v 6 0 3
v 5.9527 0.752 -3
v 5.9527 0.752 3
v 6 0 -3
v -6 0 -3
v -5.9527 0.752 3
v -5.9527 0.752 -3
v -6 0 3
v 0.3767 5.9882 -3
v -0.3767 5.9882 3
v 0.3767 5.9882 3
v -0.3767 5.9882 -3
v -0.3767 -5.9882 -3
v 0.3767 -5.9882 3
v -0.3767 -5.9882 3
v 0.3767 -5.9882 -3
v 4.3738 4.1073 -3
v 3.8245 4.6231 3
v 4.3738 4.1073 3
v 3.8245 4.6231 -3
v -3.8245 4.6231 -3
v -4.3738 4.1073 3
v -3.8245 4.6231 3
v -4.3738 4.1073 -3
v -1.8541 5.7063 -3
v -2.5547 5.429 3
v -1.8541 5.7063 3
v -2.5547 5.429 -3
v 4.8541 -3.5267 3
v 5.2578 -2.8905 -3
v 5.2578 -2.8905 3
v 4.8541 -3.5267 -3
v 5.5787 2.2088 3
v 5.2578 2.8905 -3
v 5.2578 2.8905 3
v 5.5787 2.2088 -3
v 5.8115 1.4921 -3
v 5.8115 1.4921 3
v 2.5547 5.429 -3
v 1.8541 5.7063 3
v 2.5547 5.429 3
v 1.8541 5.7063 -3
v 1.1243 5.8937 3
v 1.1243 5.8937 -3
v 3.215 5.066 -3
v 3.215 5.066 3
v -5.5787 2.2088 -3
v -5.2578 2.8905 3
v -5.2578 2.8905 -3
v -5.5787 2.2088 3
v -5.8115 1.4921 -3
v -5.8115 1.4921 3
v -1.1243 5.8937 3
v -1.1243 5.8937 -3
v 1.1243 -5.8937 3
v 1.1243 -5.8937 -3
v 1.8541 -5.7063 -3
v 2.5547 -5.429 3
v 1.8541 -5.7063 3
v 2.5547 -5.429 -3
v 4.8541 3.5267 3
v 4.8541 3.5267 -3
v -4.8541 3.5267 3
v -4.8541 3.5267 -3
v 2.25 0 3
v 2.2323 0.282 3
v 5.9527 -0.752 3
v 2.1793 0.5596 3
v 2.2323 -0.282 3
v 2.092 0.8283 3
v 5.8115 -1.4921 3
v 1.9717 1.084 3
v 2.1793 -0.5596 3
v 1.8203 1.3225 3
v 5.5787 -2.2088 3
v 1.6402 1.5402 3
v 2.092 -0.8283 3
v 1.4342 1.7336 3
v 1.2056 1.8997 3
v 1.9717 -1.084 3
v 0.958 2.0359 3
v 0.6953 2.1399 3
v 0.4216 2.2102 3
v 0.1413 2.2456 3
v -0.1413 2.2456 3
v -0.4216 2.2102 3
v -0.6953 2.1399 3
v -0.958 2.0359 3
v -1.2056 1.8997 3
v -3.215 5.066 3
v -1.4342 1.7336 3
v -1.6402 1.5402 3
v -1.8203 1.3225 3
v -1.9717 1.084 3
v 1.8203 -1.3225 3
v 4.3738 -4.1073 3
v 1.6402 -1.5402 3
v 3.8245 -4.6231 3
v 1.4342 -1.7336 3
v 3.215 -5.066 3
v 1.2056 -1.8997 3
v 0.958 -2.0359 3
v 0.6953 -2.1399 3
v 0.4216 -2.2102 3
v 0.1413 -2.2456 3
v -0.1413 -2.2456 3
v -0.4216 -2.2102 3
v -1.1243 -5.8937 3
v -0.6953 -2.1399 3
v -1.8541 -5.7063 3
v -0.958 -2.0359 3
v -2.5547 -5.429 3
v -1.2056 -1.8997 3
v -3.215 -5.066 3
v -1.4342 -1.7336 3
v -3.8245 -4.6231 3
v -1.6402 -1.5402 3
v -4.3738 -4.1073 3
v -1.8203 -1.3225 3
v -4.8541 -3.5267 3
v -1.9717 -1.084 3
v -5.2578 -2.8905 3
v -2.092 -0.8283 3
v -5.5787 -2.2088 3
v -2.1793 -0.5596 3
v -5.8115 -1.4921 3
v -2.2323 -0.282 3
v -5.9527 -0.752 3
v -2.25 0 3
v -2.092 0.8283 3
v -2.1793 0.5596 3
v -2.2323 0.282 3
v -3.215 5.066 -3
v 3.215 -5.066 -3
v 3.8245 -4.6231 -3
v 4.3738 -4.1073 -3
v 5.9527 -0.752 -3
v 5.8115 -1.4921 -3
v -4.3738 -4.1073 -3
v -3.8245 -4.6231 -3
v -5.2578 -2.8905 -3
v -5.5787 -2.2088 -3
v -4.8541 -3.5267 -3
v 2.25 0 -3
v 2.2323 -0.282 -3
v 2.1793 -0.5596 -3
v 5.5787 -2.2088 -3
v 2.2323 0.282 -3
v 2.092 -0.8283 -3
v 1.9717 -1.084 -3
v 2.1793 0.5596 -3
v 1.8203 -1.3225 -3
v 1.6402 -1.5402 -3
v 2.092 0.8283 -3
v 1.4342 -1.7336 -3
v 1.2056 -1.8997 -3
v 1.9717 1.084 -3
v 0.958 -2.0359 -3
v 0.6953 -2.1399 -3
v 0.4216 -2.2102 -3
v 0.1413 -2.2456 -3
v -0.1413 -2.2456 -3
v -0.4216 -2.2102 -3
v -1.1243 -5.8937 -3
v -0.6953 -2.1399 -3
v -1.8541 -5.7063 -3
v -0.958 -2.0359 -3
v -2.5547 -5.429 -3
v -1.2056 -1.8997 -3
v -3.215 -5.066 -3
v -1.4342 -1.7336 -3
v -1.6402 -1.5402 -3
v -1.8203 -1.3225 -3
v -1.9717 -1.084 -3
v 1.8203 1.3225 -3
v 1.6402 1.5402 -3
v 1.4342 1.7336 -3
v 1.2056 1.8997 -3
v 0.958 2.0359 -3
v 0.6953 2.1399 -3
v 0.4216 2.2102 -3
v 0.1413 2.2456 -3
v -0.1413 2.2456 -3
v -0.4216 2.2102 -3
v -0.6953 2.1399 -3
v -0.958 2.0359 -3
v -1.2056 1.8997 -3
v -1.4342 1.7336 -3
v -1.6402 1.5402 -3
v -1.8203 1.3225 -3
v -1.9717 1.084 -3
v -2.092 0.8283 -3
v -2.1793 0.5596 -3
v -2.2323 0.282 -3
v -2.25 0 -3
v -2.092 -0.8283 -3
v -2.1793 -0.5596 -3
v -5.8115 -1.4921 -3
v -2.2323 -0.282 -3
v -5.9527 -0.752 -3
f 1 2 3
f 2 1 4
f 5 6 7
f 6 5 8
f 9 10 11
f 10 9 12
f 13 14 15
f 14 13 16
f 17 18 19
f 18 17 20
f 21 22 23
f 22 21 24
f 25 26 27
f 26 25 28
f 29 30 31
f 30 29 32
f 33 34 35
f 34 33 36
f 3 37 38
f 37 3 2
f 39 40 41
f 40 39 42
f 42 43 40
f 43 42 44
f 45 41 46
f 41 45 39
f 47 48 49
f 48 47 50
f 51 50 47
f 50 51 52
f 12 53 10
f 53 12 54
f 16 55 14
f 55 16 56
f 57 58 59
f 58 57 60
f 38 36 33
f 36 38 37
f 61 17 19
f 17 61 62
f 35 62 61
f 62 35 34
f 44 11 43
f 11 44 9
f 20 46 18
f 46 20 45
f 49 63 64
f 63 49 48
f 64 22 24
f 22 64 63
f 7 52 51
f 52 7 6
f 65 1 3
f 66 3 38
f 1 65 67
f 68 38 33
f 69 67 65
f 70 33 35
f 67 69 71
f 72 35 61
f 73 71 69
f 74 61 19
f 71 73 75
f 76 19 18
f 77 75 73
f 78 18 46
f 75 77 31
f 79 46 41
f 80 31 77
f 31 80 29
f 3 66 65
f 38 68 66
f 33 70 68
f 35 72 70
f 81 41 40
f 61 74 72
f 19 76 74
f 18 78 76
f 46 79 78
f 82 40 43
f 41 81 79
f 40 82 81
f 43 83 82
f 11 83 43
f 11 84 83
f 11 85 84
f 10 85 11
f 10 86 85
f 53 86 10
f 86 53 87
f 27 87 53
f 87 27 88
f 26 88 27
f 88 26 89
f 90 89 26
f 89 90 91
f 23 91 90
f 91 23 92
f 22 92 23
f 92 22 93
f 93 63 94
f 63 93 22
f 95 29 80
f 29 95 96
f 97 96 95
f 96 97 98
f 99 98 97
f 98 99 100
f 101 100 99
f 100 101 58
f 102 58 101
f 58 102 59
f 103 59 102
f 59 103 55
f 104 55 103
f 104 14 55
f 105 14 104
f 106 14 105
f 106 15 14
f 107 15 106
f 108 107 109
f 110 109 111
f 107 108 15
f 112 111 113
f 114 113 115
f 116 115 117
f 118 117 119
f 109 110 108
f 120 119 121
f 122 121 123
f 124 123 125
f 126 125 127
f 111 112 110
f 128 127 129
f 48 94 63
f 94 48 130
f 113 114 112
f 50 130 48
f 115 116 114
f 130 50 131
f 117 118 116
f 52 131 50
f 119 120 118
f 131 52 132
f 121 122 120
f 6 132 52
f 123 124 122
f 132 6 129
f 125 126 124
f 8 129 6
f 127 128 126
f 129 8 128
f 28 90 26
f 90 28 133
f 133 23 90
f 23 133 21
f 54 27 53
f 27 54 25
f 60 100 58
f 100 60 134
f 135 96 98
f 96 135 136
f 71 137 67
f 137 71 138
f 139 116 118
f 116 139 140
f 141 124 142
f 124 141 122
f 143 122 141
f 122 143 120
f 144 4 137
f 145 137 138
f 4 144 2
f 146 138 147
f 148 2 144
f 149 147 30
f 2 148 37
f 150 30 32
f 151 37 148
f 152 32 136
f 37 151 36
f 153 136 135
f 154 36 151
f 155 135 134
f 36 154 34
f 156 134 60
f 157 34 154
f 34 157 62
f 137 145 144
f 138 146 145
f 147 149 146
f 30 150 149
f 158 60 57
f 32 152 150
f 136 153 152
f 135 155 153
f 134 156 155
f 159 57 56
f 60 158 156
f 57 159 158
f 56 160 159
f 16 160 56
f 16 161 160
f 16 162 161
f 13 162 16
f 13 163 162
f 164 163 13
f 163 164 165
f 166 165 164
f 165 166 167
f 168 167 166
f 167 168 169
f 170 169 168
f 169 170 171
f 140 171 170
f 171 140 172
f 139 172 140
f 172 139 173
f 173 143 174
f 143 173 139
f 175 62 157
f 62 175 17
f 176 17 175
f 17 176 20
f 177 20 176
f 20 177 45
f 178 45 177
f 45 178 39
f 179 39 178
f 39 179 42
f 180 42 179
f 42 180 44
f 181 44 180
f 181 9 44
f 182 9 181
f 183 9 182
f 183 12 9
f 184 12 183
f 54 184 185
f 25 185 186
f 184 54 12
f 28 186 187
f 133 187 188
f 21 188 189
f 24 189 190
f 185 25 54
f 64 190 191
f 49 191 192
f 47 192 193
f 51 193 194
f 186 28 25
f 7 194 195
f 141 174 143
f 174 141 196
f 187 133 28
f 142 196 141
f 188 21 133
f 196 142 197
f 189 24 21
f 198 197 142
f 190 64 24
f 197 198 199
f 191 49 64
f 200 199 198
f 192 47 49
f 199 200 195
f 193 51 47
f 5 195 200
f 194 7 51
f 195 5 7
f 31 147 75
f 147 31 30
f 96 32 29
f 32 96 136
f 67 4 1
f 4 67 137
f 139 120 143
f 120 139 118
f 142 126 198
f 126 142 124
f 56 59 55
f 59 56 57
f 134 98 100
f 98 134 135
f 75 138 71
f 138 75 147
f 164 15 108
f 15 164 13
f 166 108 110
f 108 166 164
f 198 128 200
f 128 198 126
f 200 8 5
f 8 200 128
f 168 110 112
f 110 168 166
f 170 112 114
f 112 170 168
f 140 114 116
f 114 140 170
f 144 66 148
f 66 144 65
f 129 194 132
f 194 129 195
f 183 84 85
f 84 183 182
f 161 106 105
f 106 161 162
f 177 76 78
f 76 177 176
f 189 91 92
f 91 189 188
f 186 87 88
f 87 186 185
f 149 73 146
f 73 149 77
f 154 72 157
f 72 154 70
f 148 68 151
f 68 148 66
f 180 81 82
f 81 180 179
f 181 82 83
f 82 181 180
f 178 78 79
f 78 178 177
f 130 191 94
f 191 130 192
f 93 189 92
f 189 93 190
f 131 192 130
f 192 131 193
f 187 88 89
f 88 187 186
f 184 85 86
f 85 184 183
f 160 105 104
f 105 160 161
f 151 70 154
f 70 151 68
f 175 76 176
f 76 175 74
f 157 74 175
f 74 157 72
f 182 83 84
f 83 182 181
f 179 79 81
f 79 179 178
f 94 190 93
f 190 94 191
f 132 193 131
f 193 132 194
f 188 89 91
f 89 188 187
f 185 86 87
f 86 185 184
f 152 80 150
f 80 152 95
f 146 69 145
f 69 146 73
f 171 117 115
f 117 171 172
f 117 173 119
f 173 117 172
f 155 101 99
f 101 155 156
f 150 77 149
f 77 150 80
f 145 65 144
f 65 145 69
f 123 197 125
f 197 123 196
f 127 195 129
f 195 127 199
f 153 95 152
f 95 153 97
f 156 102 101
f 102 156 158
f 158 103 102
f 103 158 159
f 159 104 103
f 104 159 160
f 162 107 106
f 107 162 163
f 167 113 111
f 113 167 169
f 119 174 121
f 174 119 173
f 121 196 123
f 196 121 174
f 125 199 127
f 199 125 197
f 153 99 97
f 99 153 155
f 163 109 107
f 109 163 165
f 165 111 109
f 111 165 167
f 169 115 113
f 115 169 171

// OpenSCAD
$fn = 50;


difference() {
	union() {
		translate(v = [0, 0, -3.0000000000]) {
			cylinder(h = 6, r = 6.0000000000);
		}
	}
	union() {
		translate(v = [0, 0, -100.0000000000]) {
			cylinder(h = 200, r = 2.2500000000);
		}
	}
}
